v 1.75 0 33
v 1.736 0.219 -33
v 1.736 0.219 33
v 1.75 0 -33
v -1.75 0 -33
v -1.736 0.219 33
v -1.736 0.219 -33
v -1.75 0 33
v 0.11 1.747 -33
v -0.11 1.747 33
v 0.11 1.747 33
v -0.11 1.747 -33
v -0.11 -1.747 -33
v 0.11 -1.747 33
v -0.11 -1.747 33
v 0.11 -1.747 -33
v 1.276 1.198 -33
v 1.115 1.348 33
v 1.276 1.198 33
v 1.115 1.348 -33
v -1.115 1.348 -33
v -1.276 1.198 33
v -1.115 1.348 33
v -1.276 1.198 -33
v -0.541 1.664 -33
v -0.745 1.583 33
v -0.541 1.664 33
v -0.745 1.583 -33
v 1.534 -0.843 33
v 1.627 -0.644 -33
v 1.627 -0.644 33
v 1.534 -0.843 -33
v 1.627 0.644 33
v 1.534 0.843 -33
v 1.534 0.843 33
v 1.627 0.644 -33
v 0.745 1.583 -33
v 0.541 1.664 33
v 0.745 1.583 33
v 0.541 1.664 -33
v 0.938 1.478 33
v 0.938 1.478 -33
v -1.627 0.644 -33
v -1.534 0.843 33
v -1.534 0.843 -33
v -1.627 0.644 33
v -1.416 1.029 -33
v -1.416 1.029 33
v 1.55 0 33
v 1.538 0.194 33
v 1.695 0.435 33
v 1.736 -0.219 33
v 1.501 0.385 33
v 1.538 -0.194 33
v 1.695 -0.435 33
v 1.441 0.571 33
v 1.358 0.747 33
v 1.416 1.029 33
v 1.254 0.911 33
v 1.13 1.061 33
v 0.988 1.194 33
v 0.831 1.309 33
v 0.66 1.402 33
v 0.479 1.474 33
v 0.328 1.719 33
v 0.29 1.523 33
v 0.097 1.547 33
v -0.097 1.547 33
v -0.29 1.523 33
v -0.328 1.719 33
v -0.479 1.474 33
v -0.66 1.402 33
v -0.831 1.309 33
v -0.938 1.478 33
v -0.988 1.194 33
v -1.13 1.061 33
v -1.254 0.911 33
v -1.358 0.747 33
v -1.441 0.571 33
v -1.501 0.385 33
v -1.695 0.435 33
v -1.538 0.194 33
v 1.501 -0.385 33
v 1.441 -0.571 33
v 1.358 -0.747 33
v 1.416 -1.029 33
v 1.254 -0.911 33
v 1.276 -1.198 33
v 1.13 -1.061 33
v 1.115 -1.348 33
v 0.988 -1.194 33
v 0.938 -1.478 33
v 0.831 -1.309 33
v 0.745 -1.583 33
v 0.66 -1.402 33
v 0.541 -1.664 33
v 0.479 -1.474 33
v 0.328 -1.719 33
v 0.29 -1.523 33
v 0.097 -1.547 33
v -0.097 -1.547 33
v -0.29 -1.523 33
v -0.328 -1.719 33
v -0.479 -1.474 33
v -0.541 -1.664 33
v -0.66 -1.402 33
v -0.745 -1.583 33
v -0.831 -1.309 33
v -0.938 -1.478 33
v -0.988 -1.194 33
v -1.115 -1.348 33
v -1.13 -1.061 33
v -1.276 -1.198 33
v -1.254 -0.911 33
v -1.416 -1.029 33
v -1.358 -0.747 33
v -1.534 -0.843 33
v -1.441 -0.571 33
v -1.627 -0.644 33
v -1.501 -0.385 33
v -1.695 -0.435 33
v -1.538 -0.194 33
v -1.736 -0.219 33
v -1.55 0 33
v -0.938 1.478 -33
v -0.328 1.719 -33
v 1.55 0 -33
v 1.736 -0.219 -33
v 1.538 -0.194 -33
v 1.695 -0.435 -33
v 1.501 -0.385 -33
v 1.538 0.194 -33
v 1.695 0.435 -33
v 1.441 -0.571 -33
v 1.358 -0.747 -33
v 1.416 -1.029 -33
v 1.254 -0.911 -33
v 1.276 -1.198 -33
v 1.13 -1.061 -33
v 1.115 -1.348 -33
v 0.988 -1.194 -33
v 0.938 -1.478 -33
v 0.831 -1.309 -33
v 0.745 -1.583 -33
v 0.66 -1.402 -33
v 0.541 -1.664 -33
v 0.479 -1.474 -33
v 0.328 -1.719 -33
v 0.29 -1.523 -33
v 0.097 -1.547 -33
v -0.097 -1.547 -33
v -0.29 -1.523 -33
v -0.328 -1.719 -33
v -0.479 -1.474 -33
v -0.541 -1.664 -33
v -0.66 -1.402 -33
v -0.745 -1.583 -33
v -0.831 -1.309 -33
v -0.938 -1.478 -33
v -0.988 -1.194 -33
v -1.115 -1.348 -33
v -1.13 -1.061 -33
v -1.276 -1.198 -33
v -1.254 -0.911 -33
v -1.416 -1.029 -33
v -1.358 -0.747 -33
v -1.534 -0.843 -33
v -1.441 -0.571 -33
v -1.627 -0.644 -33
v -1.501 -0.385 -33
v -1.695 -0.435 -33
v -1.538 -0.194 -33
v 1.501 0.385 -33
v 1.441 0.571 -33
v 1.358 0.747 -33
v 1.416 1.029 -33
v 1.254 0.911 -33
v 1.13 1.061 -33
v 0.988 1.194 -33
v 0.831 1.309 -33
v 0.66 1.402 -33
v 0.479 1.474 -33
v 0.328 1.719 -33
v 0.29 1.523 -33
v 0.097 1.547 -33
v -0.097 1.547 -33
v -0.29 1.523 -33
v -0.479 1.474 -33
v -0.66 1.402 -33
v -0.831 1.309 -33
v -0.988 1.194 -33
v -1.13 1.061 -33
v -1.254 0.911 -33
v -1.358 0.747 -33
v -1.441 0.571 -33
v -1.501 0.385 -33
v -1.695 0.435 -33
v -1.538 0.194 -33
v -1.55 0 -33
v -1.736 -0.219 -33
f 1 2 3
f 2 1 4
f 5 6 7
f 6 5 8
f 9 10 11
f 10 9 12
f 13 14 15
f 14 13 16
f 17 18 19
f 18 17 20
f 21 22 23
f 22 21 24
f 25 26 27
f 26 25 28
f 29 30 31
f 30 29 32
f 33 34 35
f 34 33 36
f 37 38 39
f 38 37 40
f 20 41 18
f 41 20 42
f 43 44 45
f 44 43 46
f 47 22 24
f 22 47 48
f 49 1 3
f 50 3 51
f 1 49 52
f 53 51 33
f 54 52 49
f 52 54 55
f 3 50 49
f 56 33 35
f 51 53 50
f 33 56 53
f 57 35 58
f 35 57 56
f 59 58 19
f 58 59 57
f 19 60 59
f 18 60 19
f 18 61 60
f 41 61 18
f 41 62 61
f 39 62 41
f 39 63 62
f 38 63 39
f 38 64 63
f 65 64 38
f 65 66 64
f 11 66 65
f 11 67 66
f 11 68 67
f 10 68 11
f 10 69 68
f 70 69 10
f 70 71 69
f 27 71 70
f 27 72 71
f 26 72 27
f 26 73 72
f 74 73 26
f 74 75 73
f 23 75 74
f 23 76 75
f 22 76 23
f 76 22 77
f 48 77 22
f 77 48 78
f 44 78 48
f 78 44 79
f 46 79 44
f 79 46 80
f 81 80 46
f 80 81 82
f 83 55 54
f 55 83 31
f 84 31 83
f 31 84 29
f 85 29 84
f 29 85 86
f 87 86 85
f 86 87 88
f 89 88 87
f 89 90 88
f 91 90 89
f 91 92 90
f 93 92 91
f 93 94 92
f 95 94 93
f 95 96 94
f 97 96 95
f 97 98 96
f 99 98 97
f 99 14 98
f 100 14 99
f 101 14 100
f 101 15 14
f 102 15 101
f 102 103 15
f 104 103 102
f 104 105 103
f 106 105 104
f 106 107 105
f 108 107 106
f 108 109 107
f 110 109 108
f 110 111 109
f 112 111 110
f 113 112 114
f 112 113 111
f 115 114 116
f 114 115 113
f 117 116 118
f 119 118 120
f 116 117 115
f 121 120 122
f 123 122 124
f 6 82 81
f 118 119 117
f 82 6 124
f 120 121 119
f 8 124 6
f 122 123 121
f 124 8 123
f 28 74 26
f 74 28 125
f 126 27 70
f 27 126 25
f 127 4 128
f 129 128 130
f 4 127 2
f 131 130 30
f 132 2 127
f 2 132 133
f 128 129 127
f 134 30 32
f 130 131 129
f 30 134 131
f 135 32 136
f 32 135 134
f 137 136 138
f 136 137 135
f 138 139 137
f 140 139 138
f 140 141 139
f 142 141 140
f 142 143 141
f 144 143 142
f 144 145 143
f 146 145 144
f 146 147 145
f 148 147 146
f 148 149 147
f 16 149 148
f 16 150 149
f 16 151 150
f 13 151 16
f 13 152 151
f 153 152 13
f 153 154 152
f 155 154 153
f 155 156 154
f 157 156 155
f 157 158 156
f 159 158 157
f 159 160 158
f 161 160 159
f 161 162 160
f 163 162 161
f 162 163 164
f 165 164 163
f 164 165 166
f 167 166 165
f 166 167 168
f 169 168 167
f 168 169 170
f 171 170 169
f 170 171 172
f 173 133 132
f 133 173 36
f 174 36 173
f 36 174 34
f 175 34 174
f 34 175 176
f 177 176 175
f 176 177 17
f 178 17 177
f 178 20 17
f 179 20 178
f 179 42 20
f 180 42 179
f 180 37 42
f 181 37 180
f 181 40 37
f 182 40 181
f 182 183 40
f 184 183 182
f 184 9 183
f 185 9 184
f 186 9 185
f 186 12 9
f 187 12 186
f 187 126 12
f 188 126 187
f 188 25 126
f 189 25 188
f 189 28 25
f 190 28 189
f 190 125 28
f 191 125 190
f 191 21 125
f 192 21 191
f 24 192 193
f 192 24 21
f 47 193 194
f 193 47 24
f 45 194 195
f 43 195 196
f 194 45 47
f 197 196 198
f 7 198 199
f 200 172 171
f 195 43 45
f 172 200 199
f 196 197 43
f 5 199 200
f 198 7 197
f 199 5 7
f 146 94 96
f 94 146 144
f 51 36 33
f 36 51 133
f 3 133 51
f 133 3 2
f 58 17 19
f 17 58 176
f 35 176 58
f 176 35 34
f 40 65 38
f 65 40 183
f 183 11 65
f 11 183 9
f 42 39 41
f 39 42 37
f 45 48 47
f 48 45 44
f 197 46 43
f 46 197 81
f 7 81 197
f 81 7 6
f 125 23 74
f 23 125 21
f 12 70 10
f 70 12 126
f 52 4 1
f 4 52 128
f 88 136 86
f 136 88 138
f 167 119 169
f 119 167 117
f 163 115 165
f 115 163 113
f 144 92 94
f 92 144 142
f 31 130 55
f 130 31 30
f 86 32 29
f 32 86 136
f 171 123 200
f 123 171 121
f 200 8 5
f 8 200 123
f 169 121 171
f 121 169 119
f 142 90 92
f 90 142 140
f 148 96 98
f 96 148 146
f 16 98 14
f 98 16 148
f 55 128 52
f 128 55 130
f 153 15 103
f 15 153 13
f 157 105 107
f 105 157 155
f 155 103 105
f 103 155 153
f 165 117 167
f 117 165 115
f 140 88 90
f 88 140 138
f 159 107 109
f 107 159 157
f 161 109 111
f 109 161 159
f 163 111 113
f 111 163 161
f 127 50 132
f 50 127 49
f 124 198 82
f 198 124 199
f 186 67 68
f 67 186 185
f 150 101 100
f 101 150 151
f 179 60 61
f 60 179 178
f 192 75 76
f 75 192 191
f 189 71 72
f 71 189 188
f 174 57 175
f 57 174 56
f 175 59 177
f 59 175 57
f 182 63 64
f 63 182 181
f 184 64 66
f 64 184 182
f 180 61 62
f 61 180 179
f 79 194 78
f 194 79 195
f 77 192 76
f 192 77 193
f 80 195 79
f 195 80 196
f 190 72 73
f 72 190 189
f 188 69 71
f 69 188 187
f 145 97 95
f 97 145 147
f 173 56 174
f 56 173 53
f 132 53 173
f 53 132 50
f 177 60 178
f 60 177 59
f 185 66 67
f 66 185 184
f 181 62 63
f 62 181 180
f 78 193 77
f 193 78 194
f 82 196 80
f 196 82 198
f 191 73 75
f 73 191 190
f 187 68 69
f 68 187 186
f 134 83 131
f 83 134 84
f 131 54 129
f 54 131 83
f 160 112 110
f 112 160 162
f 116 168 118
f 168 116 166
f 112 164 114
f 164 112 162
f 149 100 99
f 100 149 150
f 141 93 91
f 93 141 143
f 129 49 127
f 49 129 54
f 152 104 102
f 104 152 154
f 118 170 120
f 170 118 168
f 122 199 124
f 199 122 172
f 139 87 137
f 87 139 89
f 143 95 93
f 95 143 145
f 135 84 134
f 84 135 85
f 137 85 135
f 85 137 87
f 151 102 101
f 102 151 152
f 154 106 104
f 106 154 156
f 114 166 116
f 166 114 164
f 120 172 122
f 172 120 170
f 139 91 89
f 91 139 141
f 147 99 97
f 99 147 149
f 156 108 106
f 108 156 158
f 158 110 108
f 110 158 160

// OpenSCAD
$fn = 50;


difference() {
	union() {
		translate(v = [0, 0, -33.0000000000]) {
			cylinder(h = 66, r = 1.7500000000);
		}
	}
	union() {
		translate(v = [0, 0, -100.0000000000]) {
			cylinder(h = 200, r = 1.5500000000);
		}
	}
}
